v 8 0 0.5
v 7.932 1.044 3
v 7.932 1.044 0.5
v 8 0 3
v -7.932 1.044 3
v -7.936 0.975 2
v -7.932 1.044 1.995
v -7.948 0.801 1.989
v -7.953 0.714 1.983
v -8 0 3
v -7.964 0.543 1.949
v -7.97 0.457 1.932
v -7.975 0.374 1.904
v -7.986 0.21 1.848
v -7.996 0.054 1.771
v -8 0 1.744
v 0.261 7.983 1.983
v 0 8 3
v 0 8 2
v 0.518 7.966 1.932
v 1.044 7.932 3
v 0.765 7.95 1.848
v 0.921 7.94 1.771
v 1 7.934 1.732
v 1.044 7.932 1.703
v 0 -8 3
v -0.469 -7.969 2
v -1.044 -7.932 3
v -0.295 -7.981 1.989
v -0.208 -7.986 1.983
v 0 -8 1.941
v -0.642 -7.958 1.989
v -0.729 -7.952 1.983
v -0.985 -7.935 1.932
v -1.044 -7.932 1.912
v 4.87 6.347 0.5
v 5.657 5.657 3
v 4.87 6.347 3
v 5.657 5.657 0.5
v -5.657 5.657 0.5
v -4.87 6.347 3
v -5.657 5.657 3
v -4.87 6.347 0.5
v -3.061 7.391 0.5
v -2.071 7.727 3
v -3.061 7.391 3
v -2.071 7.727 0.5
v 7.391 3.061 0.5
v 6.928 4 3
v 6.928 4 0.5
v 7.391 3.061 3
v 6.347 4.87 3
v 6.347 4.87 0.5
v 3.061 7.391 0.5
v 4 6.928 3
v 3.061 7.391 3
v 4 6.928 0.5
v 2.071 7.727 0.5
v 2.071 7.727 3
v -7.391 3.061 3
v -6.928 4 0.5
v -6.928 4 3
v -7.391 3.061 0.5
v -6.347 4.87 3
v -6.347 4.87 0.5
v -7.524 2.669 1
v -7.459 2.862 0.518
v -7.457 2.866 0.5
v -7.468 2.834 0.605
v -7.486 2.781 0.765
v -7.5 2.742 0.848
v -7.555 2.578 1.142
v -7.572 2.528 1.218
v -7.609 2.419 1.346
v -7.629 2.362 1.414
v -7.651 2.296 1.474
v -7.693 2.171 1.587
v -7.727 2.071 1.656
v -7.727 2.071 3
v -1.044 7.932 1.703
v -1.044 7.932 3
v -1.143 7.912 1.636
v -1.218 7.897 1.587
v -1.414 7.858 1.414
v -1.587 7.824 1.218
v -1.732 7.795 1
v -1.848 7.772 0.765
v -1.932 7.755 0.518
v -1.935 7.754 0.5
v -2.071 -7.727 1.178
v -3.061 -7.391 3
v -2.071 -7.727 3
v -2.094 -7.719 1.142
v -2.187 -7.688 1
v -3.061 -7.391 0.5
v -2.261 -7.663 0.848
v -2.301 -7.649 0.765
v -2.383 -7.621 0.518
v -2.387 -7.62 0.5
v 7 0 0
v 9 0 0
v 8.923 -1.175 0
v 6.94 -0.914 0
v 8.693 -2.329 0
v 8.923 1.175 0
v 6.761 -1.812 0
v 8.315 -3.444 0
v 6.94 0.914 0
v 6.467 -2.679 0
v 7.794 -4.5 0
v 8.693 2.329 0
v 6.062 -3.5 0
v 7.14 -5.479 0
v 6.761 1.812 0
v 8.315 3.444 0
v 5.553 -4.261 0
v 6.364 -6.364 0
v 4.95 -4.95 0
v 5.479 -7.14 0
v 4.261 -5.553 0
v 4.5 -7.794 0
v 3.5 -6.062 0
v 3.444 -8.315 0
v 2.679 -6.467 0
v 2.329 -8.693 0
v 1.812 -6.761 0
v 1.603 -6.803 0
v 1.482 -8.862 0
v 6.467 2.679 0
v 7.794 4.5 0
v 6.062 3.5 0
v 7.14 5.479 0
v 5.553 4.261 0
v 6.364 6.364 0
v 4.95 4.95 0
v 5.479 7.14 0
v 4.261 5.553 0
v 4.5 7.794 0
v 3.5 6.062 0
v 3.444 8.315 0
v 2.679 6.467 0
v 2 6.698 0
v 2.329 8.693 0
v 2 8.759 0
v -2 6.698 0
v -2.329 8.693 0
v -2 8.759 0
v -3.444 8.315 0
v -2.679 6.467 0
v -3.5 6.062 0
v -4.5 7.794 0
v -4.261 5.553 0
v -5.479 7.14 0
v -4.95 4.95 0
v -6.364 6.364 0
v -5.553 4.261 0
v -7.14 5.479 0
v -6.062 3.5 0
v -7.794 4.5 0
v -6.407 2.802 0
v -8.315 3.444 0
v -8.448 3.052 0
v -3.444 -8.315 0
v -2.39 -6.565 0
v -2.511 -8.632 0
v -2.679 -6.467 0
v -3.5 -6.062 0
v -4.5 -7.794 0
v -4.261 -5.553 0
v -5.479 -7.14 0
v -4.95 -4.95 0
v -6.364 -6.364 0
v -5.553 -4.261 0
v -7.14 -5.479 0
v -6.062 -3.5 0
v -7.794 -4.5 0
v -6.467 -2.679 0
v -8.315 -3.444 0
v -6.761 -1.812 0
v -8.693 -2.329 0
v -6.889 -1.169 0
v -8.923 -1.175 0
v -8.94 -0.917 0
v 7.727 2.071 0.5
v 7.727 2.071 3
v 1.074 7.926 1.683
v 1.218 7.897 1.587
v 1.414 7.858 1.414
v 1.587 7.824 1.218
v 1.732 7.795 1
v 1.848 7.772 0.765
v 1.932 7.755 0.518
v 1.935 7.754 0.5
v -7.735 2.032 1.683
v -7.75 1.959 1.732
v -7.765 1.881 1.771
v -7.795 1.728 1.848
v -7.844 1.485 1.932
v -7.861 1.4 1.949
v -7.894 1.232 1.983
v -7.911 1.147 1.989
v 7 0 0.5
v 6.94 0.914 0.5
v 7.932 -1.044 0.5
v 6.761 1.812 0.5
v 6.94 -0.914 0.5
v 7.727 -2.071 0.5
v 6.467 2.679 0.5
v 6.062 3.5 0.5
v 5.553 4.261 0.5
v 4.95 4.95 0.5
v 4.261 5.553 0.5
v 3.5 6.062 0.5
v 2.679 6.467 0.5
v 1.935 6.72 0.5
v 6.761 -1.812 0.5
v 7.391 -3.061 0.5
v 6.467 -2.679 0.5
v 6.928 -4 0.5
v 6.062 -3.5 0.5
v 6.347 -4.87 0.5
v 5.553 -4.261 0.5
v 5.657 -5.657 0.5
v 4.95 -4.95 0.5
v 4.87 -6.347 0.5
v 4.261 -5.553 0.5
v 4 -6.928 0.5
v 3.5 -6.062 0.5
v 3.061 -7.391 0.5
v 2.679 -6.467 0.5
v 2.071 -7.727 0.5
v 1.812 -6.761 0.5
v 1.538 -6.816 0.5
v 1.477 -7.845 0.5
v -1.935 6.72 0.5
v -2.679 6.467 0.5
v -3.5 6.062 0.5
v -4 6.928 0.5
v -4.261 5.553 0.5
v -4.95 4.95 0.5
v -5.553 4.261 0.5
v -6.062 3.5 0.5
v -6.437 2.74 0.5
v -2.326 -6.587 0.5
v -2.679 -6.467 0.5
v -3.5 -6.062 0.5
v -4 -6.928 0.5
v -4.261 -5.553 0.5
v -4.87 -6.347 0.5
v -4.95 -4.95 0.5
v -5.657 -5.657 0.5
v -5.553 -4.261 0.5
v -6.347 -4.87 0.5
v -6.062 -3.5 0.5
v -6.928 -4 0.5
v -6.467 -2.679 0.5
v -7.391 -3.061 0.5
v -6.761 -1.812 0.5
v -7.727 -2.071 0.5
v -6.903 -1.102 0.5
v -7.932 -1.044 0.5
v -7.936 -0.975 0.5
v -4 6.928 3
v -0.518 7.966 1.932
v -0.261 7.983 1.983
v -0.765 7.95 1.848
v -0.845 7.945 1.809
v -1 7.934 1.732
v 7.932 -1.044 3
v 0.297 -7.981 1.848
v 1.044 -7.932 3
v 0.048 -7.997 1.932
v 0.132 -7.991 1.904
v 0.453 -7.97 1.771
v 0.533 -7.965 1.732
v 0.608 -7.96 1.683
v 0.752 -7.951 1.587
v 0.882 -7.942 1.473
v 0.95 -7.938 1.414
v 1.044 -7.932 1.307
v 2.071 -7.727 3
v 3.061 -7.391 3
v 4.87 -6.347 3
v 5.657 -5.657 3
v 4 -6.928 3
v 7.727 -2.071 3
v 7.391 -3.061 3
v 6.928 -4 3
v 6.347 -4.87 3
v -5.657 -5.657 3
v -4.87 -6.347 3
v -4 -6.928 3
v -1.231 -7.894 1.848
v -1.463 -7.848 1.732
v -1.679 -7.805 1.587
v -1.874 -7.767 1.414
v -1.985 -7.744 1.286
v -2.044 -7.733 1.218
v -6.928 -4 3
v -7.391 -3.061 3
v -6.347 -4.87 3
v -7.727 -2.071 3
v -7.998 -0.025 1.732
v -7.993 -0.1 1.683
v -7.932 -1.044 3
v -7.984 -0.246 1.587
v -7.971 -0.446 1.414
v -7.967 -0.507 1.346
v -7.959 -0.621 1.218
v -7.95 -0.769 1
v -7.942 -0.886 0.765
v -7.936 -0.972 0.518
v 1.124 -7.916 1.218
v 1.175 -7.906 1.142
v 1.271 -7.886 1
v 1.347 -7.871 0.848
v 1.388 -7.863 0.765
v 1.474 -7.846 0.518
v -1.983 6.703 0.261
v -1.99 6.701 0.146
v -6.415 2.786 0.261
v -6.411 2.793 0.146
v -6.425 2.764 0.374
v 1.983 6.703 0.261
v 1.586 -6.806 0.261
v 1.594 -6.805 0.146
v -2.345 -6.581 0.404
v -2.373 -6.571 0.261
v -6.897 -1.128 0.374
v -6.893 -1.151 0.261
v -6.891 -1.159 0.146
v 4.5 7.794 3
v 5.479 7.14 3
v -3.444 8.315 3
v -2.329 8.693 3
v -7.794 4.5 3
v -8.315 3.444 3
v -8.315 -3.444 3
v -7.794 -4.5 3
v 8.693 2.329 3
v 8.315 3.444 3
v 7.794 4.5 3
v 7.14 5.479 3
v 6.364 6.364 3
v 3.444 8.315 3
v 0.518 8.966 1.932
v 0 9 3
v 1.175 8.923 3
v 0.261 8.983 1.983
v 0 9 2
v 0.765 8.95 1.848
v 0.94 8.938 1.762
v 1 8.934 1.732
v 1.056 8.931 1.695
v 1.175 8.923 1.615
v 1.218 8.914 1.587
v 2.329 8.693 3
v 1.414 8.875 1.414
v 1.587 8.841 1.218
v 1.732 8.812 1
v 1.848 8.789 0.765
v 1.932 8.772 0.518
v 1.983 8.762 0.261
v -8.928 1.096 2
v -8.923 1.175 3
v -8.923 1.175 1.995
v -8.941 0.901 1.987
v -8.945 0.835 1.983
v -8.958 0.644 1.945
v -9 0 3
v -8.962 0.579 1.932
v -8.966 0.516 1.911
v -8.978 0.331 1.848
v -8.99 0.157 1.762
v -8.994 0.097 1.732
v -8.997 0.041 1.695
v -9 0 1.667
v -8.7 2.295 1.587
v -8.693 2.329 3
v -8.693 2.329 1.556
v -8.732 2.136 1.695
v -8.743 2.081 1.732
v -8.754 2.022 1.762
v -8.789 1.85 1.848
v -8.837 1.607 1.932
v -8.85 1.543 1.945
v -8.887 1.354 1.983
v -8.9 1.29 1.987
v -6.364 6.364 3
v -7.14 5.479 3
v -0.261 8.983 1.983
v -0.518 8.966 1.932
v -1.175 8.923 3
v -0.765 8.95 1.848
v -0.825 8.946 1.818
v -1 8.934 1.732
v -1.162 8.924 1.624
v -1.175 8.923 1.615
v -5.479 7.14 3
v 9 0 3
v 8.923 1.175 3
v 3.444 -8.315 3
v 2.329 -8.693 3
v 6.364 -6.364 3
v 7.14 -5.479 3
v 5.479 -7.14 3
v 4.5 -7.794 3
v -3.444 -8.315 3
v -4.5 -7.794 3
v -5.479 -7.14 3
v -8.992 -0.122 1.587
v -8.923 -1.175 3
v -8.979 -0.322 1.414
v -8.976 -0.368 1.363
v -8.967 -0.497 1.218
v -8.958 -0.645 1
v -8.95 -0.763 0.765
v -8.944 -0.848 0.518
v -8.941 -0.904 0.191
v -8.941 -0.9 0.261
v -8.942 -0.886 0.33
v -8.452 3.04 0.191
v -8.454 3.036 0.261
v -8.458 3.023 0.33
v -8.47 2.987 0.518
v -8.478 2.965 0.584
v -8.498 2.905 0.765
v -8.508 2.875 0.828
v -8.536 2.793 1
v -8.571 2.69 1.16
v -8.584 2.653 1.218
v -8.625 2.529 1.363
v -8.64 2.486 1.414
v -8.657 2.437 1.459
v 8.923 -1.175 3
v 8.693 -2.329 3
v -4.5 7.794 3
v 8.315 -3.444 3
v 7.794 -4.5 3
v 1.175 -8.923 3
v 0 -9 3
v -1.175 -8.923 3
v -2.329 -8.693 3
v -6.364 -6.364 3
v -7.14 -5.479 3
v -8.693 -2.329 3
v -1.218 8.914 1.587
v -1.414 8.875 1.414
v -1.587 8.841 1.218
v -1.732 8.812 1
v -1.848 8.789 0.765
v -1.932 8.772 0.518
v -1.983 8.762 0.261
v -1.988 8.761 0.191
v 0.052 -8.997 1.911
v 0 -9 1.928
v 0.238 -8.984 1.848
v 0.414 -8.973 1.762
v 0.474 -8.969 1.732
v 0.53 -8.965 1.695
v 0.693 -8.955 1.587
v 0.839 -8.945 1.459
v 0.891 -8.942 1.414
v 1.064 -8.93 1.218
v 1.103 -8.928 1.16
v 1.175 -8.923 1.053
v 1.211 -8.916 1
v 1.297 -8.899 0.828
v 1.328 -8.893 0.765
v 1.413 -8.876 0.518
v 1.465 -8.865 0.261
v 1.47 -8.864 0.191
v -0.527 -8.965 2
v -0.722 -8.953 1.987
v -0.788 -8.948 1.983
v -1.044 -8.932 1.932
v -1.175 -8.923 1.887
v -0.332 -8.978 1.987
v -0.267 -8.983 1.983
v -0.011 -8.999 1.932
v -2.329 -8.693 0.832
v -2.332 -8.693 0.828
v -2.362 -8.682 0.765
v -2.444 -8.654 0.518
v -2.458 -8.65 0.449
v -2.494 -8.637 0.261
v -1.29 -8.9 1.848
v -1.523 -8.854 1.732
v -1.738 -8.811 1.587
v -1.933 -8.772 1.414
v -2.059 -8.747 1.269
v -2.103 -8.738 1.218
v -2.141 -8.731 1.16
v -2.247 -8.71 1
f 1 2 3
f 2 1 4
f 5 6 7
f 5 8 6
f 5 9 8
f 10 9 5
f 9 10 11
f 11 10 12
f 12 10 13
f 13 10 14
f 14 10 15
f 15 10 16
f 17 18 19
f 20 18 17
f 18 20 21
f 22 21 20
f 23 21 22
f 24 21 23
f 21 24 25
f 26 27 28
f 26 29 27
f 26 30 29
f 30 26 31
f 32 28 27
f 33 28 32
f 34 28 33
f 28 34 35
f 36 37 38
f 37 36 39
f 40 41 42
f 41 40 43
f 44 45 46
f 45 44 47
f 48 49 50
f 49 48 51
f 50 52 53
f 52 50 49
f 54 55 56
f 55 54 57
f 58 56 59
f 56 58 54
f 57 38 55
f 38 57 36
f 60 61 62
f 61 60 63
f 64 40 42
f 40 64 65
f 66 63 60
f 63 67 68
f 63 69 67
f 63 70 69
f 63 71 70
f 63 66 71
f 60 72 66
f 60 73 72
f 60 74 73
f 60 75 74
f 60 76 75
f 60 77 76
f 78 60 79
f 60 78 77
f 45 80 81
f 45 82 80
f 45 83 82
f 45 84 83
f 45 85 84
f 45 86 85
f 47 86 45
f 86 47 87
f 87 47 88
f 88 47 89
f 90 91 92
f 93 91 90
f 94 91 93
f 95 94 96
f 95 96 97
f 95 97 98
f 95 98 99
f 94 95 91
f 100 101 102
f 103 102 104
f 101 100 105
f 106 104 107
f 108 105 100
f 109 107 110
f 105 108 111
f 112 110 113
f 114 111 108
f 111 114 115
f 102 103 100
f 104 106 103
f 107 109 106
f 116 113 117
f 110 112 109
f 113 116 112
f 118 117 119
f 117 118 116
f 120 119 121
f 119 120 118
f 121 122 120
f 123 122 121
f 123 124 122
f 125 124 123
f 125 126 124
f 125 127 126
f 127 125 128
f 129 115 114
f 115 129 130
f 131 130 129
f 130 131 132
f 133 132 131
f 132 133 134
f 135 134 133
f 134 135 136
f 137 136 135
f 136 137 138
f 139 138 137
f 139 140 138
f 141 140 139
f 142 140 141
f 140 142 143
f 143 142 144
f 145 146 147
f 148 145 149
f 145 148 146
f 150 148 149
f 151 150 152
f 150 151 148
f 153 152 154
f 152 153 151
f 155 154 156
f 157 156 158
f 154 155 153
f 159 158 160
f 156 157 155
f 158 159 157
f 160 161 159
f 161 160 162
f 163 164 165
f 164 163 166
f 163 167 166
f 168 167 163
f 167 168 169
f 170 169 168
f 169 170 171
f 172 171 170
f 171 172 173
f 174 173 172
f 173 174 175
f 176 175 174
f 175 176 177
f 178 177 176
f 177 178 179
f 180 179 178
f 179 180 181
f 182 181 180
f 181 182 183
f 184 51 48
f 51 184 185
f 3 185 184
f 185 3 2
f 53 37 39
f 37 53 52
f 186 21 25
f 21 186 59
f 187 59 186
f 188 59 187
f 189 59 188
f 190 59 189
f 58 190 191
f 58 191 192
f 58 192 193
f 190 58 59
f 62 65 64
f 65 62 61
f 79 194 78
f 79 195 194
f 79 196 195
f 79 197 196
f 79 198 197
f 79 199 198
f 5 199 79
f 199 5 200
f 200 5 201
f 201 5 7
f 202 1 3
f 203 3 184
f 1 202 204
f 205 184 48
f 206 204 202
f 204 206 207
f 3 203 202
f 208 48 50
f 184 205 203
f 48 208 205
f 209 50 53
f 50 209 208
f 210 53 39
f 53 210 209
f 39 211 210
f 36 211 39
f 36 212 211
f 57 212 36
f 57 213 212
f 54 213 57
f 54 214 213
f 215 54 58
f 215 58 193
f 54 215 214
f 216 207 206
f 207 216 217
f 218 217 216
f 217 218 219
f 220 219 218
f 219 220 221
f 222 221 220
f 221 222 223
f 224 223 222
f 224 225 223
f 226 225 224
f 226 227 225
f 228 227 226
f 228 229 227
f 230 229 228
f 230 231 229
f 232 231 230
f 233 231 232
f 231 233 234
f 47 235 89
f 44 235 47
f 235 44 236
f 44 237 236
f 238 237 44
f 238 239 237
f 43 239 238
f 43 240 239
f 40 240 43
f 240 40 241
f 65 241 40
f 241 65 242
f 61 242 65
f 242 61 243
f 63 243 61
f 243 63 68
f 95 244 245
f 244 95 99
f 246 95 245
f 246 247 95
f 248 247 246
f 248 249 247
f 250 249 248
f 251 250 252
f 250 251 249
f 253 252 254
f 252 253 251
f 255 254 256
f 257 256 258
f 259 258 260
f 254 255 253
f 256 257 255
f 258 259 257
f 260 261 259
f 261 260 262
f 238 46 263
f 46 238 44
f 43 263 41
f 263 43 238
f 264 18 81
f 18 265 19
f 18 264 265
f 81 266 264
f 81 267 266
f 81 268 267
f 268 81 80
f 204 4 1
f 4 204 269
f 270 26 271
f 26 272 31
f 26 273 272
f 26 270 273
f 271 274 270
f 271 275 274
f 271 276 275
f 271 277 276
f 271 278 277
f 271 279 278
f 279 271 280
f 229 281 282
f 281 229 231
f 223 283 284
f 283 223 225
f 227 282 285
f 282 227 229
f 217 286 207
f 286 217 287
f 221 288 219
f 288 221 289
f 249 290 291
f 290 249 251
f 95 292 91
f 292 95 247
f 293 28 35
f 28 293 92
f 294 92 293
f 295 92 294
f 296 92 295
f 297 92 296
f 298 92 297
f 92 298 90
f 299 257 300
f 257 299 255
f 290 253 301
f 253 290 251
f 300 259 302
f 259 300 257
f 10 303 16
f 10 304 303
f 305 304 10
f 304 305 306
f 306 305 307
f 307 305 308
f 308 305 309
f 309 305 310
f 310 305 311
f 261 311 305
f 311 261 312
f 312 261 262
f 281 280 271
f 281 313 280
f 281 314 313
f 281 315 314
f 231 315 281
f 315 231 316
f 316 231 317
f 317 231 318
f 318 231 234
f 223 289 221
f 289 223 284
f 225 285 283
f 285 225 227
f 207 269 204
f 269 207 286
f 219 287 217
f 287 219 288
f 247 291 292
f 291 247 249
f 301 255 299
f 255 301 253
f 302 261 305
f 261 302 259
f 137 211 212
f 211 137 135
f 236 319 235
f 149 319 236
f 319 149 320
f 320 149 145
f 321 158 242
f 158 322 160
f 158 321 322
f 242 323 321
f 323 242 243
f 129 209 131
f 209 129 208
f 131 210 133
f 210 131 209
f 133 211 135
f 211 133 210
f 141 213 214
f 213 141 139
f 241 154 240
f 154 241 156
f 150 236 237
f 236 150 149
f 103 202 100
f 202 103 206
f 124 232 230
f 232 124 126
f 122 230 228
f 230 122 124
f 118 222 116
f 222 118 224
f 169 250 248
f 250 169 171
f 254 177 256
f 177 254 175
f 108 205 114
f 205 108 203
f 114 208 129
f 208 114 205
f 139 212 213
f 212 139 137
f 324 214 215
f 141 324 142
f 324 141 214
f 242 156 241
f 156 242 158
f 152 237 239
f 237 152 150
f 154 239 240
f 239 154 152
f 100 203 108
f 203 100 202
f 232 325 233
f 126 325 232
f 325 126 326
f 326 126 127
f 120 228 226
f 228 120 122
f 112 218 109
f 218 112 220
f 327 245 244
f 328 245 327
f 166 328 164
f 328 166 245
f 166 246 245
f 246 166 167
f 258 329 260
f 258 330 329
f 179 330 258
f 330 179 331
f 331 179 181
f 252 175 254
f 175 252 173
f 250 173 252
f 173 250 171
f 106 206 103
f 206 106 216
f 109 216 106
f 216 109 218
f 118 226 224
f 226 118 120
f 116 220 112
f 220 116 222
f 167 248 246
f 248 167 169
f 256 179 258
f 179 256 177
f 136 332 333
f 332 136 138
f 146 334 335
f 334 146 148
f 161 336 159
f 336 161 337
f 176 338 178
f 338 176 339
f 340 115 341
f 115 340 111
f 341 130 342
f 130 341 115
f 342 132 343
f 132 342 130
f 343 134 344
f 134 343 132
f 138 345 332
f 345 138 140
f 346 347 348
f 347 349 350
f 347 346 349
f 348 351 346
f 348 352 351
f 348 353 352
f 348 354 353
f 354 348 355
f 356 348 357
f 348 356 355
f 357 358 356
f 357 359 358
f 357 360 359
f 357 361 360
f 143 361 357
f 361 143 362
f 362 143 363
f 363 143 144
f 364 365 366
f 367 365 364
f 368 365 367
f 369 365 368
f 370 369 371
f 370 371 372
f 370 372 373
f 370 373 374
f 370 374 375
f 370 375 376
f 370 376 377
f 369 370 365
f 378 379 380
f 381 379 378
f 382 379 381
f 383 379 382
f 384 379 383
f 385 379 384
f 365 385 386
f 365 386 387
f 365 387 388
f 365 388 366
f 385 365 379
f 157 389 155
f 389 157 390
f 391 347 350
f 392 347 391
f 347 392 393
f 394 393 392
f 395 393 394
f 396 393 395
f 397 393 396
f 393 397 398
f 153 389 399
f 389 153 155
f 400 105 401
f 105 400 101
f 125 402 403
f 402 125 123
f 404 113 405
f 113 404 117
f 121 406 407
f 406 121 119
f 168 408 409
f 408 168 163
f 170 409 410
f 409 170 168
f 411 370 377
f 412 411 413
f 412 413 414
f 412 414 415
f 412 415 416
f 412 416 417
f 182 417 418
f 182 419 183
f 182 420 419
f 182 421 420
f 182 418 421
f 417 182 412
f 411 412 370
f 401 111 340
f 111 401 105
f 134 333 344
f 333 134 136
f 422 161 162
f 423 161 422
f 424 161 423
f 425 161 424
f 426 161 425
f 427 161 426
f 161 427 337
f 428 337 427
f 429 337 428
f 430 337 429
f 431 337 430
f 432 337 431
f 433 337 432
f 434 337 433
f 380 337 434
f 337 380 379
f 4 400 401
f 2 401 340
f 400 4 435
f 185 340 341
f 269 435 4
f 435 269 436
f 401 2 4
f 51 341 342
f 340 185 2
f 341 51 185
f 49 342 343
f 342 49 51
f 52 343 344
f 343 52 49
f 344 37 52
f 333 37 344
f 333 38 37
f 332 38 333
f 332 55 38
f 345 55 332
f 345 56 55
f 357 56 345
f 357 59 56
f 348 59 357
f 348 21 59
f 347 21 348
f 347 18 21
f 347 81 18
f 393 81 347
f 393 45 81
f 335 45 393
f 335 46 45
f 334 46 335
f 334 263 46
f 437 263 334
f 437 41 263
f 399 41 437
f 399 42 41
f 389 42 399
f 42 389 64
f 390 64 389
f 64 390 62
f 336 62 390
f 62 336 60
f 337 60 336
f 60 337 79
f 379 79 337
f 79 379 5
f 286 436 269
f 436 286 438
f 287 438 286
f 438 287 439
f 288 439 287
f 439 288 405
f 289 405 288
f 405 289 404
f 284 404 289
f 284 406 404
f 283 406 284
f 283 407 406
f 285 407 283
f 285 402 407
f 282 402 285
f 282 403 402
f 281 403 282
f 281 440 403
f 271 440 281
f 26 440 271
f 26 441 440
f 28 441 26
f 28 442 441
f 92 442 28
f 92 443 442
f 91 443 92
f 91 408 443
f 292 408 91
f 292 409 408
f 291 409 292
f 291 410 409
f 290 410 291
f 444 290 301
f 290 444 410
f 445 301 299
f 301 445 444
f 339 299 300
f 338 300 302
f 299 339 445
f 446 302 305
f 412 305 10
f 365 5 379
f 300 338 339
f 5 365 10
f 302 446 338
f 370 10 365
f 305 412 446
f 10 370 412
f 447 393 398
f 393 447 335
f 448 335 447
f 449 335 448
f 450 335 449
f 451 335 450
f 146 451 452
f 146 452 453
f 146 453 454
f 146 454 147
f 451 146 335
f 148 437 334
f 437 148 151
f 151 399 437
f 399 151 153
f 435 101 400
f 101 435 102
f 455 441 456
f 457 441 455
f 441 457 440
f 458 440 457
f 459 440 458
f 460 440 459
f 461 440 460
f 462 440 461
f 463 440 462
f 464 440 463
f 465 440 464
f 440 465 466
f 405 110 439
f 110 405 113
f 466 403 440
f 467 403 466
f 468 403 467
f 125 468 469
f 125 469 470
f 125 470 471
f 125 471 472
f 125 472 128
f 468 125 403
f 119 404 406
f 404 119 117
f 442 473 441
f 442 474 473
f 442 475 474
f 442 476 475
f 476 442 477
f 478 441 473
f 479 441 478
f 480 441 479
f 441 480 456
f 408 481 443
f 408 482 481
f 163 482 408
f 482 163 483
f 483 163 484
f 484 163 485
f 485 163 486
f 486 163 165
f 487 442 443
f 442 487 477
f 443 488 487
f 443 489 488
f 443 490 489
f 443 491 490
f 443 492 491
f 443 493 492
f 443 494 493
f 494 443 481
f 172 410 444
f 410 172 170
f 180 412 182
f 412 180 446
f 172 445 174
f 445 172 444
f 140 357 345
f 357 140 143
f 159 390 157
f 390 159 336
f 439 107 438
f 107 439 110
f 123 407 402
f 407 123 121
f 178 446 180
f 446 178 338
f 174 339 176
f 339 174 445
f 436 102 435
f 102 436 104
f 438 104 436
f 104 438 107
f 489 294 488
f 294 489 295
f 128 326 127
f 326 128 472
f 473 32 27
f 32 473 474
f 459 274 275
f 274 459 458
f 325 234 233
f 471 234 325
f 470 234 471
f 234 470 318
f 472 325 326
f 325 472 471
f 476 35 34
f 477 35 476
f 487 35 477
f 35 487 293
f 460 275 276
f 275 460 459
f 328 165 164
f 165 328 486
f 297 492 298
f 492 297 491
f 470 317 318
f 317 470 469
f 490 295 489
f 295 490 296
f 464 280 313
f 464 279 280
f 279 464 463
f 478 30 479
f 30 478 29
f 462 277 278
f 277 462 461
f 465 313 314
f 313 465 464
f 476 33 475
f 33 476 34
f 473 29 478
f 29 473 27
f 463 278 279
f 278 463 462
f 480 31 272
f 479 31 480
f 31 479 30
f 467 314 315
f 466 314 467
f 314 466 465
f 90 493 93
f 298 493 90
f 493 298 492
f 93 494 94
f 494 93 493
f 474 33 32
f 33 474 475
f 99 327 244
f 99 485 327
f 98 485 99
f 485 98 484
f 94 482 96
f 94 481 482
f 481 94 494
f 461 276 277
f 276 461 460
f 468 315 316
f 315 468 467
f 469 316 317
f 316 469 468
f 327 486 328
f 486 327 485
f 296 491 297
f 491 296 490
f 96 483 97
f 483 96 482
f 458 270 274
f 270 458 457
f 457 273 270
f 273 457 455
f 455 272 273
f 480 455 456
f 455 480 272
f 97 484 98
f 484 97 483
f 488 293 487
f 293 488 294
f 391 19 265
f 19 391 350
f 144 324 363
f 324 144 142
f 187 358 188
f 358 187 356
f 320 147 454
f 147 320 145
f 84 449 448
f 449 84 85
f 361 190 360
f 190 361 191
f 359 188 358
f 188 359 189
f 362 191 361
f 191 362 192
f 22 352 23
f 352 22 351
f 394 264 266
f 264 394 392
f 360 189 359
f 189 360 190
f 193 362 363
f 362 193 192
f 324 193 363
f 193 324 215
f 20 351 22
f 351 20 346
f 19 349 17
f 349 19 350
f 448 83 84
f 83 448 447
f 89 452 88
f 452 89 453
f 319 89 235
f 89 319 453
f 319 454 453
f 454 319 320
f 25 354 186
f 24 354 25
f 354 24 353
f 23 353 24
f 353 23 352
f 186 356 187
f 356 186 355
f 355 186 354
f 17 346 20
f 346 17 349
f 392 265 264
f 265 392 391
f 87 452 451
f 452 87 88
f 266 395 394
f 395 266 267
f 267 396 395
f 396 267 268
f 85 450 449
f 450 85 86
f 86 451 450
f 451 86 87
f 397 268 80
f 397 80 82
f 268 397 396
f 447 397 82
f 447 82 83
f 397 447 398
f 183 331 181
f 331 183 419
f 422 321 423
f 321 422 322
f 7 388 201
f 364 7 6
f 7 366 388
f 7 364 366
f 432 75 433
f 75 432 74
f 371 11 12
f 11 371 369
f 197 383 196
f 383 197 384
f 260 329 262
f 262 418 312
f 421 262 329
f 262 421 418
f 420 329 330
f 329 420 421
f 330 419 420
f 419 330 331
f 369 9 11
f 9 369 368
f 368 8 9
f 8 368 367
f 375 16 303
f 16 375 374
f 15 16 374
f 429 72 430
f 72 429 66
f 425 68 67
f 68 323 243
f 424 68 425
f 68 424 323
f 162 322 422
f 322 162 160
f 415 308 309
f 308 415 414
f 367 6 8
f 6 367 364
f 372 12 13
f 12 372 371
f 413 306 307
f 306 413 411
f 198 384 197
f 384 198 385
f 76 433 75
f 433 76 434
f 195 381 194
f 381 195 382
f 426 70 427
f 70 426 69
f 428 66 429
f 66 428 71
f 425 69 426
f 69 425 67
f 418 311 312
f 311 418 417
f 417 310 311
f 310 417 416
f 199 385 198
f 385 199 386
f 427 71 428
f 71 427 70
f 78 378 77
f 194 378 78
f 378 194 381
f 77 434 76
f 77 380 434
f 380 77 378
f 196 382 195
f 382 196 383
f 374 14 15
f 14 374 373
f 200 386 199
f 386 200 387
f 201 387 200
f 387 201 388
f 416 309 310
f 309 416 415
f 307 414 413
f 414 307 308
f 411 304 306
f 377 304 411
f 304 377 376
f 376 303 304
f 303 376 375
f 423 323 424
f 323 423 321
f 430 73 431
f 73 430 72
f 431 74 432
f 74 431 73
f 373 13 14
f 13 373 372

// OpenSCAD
// file: ../build_environments.scad
// build_environments.scad: modules to build level sections
//

module pool(diameter=10.0, wall_height=2.0, step_width=3.0, connections=[])
{
    difference() {
        union() {
        difference() {
            cylinder(h=0.5,r1=diameter+step_width,r2=diameter+step_width,$fn=48);
            translate([0,0,-0.1])
                cylinder(h=0.7,r1=diameter,r2=diameter,$fn=48);
        }
        difference() {
            cylinder(h=wall_height,r1=diameter+step_width+1.0,r2=diameter+step_width+1.0,$fn=48);
            translate([0,0,-0.1])
                cylinder(h=wall_height+0.2,r1=diameter+step_width,r2=diameter+step_width,$fn=48);
        }
        }
    
        for (c = connections)
        {
            rotate([0,90,0]) {
                angle = atan2(c[1],c[0]);
                rotate([-angle,0,0]) {
                    cylinder(h=diameter+5.0,r1=c[2],r2=c[2],$fn=48);
                }
            }
        }
    }
}

module straight(length=10.0, width=2.0, dy1=0.0, dy2=0.0, dz=0.0)
{
    dims = [0, 0, 0, 0, 0, (dz/length)];
    matrix = [
        [ 1, dims[0], dims[1], 0 ],
        [ dims[2], 1, dims[4], 0 ],
        [ dims[5], dims[3], 1, 0 ],
        [ 0, 0, 0, 1 ]
    ];
    multmatrix(matrix)
    difference() {
        translate([dy1,0,0])
        union() {
            rotate([0,90,0]) {
                difference() {
                    cylinder(h=(length-dy1-dy2),r1=width+1.0,r2=width+1.0,$fn=24);
                    translate([0,0,-0.1])
                        cylinder(h=(length-dy1-dy2+0.2),r1=width,r2=width,$fn=24);
                }
                difference() {
                    cylinder(h=1.0,r1=width+2.0,r2=width+2.0,$fn=24);
                    translate([0,0,-0.1])
                        cylinder(h=1.2,r1=width,r2=width,$fn=24);
                }
                translate([0,0,(length-dy1-dy2)-1.0]) {
                    difference() {
                        cylinder(h=1.0,r1=width+2.0,r2=width+2.0,$fn=24);
                        translate([0,0,-0.1])
                            cylinder(h=1.2,r1=width,r2=width,$fn=24);
                    }
                }
            }
        }
        translate([0,0,-(2*width+4.0)/2])
            cube([3*length,3*length,2*width+4.0],center=true);
    }
}

module curve(p0=[0,0], center=[0,0], dir=1, angle=0.0, width=2.0)
{
    radius = sqrt((p0[0]-center[0])*(p0[0]-center[0]) + (p0[1]-center[1])*(p0[1]-center[1]));
    if (dir == 0) {
        difference() {
            rotate([0,0,-90])
            difference() {
                rotate_extrude(angle = angle, convexity = 10, $fn=32)
                    translate([radius, 0, 0])
                        circle(r = width+1.0,$fn=24);
                rotate([0,0,-1.0])
                    rotate_extrude(angle = angle+2.0, convexity = 10, $fn=32)
                        translate([radius, 0, 0])
                            circle(r = width,$fn=24);
            }
            translate([0,0,-(2*width+4.0)/2])
                cube([5*radius,5*radius,2*width+4.0],center=true);
        }
    }
    else {
        difference() {
            rotate([0,0,90])
            difference() {
                rotate_extrude(angle = -angle, convexity = 10, $fn=32)
                    translate([radius, 0, 0])
                        circle(r = width+1.0,$fn=24);
                rotate([0,0,1.0])
                    rotate_extrude(angle = -angle-2.0, convexity = 10, $fn=32)
                        translate([radius, 0, 0])
                            circle(r = width,$fn=24);
            }
            translate([0,0,-(2*width+4.0)/2])
                cube([5*radius,5*radius,2*width+4.0],center=true);
        }
    }

}

// test pool
//pool(diameter=12.0000, wall_height=3.0000, step_width=3.0000, connections=[[0.0000,-26.0000,2.0000], [23.6074,0.0000,2.0000]]);

// test straight, slope
//straight(length=26.0000, width=2.0000, dy1=11.8322, dy2=6.7082, dz=0.0000);
//straight(length=29.1549, width=12.0000, dy1=0.0000, dy2=0.0000, dz=-15.0000);

// test curve
//curve(p0=[23.6074, 0.0000], center=[23.6074, 5.0000], dir=0, angle=60.1011, width=2.0000);
//curve(p0=[33.6426, 12.4219], center=[37.9771, 9.9295], dir=1, angle=120.4627, width=2.0000);
// main file
use <../build_environments.scad>;
pool(diameter=7.0000, wall_height=3.0000, step_width=1.0000, connections=[[-1.0000,-17.0000,2.0000], [0.0000,17.0000,2.0000], [-8.1105,0.9960,2.0000]]);
